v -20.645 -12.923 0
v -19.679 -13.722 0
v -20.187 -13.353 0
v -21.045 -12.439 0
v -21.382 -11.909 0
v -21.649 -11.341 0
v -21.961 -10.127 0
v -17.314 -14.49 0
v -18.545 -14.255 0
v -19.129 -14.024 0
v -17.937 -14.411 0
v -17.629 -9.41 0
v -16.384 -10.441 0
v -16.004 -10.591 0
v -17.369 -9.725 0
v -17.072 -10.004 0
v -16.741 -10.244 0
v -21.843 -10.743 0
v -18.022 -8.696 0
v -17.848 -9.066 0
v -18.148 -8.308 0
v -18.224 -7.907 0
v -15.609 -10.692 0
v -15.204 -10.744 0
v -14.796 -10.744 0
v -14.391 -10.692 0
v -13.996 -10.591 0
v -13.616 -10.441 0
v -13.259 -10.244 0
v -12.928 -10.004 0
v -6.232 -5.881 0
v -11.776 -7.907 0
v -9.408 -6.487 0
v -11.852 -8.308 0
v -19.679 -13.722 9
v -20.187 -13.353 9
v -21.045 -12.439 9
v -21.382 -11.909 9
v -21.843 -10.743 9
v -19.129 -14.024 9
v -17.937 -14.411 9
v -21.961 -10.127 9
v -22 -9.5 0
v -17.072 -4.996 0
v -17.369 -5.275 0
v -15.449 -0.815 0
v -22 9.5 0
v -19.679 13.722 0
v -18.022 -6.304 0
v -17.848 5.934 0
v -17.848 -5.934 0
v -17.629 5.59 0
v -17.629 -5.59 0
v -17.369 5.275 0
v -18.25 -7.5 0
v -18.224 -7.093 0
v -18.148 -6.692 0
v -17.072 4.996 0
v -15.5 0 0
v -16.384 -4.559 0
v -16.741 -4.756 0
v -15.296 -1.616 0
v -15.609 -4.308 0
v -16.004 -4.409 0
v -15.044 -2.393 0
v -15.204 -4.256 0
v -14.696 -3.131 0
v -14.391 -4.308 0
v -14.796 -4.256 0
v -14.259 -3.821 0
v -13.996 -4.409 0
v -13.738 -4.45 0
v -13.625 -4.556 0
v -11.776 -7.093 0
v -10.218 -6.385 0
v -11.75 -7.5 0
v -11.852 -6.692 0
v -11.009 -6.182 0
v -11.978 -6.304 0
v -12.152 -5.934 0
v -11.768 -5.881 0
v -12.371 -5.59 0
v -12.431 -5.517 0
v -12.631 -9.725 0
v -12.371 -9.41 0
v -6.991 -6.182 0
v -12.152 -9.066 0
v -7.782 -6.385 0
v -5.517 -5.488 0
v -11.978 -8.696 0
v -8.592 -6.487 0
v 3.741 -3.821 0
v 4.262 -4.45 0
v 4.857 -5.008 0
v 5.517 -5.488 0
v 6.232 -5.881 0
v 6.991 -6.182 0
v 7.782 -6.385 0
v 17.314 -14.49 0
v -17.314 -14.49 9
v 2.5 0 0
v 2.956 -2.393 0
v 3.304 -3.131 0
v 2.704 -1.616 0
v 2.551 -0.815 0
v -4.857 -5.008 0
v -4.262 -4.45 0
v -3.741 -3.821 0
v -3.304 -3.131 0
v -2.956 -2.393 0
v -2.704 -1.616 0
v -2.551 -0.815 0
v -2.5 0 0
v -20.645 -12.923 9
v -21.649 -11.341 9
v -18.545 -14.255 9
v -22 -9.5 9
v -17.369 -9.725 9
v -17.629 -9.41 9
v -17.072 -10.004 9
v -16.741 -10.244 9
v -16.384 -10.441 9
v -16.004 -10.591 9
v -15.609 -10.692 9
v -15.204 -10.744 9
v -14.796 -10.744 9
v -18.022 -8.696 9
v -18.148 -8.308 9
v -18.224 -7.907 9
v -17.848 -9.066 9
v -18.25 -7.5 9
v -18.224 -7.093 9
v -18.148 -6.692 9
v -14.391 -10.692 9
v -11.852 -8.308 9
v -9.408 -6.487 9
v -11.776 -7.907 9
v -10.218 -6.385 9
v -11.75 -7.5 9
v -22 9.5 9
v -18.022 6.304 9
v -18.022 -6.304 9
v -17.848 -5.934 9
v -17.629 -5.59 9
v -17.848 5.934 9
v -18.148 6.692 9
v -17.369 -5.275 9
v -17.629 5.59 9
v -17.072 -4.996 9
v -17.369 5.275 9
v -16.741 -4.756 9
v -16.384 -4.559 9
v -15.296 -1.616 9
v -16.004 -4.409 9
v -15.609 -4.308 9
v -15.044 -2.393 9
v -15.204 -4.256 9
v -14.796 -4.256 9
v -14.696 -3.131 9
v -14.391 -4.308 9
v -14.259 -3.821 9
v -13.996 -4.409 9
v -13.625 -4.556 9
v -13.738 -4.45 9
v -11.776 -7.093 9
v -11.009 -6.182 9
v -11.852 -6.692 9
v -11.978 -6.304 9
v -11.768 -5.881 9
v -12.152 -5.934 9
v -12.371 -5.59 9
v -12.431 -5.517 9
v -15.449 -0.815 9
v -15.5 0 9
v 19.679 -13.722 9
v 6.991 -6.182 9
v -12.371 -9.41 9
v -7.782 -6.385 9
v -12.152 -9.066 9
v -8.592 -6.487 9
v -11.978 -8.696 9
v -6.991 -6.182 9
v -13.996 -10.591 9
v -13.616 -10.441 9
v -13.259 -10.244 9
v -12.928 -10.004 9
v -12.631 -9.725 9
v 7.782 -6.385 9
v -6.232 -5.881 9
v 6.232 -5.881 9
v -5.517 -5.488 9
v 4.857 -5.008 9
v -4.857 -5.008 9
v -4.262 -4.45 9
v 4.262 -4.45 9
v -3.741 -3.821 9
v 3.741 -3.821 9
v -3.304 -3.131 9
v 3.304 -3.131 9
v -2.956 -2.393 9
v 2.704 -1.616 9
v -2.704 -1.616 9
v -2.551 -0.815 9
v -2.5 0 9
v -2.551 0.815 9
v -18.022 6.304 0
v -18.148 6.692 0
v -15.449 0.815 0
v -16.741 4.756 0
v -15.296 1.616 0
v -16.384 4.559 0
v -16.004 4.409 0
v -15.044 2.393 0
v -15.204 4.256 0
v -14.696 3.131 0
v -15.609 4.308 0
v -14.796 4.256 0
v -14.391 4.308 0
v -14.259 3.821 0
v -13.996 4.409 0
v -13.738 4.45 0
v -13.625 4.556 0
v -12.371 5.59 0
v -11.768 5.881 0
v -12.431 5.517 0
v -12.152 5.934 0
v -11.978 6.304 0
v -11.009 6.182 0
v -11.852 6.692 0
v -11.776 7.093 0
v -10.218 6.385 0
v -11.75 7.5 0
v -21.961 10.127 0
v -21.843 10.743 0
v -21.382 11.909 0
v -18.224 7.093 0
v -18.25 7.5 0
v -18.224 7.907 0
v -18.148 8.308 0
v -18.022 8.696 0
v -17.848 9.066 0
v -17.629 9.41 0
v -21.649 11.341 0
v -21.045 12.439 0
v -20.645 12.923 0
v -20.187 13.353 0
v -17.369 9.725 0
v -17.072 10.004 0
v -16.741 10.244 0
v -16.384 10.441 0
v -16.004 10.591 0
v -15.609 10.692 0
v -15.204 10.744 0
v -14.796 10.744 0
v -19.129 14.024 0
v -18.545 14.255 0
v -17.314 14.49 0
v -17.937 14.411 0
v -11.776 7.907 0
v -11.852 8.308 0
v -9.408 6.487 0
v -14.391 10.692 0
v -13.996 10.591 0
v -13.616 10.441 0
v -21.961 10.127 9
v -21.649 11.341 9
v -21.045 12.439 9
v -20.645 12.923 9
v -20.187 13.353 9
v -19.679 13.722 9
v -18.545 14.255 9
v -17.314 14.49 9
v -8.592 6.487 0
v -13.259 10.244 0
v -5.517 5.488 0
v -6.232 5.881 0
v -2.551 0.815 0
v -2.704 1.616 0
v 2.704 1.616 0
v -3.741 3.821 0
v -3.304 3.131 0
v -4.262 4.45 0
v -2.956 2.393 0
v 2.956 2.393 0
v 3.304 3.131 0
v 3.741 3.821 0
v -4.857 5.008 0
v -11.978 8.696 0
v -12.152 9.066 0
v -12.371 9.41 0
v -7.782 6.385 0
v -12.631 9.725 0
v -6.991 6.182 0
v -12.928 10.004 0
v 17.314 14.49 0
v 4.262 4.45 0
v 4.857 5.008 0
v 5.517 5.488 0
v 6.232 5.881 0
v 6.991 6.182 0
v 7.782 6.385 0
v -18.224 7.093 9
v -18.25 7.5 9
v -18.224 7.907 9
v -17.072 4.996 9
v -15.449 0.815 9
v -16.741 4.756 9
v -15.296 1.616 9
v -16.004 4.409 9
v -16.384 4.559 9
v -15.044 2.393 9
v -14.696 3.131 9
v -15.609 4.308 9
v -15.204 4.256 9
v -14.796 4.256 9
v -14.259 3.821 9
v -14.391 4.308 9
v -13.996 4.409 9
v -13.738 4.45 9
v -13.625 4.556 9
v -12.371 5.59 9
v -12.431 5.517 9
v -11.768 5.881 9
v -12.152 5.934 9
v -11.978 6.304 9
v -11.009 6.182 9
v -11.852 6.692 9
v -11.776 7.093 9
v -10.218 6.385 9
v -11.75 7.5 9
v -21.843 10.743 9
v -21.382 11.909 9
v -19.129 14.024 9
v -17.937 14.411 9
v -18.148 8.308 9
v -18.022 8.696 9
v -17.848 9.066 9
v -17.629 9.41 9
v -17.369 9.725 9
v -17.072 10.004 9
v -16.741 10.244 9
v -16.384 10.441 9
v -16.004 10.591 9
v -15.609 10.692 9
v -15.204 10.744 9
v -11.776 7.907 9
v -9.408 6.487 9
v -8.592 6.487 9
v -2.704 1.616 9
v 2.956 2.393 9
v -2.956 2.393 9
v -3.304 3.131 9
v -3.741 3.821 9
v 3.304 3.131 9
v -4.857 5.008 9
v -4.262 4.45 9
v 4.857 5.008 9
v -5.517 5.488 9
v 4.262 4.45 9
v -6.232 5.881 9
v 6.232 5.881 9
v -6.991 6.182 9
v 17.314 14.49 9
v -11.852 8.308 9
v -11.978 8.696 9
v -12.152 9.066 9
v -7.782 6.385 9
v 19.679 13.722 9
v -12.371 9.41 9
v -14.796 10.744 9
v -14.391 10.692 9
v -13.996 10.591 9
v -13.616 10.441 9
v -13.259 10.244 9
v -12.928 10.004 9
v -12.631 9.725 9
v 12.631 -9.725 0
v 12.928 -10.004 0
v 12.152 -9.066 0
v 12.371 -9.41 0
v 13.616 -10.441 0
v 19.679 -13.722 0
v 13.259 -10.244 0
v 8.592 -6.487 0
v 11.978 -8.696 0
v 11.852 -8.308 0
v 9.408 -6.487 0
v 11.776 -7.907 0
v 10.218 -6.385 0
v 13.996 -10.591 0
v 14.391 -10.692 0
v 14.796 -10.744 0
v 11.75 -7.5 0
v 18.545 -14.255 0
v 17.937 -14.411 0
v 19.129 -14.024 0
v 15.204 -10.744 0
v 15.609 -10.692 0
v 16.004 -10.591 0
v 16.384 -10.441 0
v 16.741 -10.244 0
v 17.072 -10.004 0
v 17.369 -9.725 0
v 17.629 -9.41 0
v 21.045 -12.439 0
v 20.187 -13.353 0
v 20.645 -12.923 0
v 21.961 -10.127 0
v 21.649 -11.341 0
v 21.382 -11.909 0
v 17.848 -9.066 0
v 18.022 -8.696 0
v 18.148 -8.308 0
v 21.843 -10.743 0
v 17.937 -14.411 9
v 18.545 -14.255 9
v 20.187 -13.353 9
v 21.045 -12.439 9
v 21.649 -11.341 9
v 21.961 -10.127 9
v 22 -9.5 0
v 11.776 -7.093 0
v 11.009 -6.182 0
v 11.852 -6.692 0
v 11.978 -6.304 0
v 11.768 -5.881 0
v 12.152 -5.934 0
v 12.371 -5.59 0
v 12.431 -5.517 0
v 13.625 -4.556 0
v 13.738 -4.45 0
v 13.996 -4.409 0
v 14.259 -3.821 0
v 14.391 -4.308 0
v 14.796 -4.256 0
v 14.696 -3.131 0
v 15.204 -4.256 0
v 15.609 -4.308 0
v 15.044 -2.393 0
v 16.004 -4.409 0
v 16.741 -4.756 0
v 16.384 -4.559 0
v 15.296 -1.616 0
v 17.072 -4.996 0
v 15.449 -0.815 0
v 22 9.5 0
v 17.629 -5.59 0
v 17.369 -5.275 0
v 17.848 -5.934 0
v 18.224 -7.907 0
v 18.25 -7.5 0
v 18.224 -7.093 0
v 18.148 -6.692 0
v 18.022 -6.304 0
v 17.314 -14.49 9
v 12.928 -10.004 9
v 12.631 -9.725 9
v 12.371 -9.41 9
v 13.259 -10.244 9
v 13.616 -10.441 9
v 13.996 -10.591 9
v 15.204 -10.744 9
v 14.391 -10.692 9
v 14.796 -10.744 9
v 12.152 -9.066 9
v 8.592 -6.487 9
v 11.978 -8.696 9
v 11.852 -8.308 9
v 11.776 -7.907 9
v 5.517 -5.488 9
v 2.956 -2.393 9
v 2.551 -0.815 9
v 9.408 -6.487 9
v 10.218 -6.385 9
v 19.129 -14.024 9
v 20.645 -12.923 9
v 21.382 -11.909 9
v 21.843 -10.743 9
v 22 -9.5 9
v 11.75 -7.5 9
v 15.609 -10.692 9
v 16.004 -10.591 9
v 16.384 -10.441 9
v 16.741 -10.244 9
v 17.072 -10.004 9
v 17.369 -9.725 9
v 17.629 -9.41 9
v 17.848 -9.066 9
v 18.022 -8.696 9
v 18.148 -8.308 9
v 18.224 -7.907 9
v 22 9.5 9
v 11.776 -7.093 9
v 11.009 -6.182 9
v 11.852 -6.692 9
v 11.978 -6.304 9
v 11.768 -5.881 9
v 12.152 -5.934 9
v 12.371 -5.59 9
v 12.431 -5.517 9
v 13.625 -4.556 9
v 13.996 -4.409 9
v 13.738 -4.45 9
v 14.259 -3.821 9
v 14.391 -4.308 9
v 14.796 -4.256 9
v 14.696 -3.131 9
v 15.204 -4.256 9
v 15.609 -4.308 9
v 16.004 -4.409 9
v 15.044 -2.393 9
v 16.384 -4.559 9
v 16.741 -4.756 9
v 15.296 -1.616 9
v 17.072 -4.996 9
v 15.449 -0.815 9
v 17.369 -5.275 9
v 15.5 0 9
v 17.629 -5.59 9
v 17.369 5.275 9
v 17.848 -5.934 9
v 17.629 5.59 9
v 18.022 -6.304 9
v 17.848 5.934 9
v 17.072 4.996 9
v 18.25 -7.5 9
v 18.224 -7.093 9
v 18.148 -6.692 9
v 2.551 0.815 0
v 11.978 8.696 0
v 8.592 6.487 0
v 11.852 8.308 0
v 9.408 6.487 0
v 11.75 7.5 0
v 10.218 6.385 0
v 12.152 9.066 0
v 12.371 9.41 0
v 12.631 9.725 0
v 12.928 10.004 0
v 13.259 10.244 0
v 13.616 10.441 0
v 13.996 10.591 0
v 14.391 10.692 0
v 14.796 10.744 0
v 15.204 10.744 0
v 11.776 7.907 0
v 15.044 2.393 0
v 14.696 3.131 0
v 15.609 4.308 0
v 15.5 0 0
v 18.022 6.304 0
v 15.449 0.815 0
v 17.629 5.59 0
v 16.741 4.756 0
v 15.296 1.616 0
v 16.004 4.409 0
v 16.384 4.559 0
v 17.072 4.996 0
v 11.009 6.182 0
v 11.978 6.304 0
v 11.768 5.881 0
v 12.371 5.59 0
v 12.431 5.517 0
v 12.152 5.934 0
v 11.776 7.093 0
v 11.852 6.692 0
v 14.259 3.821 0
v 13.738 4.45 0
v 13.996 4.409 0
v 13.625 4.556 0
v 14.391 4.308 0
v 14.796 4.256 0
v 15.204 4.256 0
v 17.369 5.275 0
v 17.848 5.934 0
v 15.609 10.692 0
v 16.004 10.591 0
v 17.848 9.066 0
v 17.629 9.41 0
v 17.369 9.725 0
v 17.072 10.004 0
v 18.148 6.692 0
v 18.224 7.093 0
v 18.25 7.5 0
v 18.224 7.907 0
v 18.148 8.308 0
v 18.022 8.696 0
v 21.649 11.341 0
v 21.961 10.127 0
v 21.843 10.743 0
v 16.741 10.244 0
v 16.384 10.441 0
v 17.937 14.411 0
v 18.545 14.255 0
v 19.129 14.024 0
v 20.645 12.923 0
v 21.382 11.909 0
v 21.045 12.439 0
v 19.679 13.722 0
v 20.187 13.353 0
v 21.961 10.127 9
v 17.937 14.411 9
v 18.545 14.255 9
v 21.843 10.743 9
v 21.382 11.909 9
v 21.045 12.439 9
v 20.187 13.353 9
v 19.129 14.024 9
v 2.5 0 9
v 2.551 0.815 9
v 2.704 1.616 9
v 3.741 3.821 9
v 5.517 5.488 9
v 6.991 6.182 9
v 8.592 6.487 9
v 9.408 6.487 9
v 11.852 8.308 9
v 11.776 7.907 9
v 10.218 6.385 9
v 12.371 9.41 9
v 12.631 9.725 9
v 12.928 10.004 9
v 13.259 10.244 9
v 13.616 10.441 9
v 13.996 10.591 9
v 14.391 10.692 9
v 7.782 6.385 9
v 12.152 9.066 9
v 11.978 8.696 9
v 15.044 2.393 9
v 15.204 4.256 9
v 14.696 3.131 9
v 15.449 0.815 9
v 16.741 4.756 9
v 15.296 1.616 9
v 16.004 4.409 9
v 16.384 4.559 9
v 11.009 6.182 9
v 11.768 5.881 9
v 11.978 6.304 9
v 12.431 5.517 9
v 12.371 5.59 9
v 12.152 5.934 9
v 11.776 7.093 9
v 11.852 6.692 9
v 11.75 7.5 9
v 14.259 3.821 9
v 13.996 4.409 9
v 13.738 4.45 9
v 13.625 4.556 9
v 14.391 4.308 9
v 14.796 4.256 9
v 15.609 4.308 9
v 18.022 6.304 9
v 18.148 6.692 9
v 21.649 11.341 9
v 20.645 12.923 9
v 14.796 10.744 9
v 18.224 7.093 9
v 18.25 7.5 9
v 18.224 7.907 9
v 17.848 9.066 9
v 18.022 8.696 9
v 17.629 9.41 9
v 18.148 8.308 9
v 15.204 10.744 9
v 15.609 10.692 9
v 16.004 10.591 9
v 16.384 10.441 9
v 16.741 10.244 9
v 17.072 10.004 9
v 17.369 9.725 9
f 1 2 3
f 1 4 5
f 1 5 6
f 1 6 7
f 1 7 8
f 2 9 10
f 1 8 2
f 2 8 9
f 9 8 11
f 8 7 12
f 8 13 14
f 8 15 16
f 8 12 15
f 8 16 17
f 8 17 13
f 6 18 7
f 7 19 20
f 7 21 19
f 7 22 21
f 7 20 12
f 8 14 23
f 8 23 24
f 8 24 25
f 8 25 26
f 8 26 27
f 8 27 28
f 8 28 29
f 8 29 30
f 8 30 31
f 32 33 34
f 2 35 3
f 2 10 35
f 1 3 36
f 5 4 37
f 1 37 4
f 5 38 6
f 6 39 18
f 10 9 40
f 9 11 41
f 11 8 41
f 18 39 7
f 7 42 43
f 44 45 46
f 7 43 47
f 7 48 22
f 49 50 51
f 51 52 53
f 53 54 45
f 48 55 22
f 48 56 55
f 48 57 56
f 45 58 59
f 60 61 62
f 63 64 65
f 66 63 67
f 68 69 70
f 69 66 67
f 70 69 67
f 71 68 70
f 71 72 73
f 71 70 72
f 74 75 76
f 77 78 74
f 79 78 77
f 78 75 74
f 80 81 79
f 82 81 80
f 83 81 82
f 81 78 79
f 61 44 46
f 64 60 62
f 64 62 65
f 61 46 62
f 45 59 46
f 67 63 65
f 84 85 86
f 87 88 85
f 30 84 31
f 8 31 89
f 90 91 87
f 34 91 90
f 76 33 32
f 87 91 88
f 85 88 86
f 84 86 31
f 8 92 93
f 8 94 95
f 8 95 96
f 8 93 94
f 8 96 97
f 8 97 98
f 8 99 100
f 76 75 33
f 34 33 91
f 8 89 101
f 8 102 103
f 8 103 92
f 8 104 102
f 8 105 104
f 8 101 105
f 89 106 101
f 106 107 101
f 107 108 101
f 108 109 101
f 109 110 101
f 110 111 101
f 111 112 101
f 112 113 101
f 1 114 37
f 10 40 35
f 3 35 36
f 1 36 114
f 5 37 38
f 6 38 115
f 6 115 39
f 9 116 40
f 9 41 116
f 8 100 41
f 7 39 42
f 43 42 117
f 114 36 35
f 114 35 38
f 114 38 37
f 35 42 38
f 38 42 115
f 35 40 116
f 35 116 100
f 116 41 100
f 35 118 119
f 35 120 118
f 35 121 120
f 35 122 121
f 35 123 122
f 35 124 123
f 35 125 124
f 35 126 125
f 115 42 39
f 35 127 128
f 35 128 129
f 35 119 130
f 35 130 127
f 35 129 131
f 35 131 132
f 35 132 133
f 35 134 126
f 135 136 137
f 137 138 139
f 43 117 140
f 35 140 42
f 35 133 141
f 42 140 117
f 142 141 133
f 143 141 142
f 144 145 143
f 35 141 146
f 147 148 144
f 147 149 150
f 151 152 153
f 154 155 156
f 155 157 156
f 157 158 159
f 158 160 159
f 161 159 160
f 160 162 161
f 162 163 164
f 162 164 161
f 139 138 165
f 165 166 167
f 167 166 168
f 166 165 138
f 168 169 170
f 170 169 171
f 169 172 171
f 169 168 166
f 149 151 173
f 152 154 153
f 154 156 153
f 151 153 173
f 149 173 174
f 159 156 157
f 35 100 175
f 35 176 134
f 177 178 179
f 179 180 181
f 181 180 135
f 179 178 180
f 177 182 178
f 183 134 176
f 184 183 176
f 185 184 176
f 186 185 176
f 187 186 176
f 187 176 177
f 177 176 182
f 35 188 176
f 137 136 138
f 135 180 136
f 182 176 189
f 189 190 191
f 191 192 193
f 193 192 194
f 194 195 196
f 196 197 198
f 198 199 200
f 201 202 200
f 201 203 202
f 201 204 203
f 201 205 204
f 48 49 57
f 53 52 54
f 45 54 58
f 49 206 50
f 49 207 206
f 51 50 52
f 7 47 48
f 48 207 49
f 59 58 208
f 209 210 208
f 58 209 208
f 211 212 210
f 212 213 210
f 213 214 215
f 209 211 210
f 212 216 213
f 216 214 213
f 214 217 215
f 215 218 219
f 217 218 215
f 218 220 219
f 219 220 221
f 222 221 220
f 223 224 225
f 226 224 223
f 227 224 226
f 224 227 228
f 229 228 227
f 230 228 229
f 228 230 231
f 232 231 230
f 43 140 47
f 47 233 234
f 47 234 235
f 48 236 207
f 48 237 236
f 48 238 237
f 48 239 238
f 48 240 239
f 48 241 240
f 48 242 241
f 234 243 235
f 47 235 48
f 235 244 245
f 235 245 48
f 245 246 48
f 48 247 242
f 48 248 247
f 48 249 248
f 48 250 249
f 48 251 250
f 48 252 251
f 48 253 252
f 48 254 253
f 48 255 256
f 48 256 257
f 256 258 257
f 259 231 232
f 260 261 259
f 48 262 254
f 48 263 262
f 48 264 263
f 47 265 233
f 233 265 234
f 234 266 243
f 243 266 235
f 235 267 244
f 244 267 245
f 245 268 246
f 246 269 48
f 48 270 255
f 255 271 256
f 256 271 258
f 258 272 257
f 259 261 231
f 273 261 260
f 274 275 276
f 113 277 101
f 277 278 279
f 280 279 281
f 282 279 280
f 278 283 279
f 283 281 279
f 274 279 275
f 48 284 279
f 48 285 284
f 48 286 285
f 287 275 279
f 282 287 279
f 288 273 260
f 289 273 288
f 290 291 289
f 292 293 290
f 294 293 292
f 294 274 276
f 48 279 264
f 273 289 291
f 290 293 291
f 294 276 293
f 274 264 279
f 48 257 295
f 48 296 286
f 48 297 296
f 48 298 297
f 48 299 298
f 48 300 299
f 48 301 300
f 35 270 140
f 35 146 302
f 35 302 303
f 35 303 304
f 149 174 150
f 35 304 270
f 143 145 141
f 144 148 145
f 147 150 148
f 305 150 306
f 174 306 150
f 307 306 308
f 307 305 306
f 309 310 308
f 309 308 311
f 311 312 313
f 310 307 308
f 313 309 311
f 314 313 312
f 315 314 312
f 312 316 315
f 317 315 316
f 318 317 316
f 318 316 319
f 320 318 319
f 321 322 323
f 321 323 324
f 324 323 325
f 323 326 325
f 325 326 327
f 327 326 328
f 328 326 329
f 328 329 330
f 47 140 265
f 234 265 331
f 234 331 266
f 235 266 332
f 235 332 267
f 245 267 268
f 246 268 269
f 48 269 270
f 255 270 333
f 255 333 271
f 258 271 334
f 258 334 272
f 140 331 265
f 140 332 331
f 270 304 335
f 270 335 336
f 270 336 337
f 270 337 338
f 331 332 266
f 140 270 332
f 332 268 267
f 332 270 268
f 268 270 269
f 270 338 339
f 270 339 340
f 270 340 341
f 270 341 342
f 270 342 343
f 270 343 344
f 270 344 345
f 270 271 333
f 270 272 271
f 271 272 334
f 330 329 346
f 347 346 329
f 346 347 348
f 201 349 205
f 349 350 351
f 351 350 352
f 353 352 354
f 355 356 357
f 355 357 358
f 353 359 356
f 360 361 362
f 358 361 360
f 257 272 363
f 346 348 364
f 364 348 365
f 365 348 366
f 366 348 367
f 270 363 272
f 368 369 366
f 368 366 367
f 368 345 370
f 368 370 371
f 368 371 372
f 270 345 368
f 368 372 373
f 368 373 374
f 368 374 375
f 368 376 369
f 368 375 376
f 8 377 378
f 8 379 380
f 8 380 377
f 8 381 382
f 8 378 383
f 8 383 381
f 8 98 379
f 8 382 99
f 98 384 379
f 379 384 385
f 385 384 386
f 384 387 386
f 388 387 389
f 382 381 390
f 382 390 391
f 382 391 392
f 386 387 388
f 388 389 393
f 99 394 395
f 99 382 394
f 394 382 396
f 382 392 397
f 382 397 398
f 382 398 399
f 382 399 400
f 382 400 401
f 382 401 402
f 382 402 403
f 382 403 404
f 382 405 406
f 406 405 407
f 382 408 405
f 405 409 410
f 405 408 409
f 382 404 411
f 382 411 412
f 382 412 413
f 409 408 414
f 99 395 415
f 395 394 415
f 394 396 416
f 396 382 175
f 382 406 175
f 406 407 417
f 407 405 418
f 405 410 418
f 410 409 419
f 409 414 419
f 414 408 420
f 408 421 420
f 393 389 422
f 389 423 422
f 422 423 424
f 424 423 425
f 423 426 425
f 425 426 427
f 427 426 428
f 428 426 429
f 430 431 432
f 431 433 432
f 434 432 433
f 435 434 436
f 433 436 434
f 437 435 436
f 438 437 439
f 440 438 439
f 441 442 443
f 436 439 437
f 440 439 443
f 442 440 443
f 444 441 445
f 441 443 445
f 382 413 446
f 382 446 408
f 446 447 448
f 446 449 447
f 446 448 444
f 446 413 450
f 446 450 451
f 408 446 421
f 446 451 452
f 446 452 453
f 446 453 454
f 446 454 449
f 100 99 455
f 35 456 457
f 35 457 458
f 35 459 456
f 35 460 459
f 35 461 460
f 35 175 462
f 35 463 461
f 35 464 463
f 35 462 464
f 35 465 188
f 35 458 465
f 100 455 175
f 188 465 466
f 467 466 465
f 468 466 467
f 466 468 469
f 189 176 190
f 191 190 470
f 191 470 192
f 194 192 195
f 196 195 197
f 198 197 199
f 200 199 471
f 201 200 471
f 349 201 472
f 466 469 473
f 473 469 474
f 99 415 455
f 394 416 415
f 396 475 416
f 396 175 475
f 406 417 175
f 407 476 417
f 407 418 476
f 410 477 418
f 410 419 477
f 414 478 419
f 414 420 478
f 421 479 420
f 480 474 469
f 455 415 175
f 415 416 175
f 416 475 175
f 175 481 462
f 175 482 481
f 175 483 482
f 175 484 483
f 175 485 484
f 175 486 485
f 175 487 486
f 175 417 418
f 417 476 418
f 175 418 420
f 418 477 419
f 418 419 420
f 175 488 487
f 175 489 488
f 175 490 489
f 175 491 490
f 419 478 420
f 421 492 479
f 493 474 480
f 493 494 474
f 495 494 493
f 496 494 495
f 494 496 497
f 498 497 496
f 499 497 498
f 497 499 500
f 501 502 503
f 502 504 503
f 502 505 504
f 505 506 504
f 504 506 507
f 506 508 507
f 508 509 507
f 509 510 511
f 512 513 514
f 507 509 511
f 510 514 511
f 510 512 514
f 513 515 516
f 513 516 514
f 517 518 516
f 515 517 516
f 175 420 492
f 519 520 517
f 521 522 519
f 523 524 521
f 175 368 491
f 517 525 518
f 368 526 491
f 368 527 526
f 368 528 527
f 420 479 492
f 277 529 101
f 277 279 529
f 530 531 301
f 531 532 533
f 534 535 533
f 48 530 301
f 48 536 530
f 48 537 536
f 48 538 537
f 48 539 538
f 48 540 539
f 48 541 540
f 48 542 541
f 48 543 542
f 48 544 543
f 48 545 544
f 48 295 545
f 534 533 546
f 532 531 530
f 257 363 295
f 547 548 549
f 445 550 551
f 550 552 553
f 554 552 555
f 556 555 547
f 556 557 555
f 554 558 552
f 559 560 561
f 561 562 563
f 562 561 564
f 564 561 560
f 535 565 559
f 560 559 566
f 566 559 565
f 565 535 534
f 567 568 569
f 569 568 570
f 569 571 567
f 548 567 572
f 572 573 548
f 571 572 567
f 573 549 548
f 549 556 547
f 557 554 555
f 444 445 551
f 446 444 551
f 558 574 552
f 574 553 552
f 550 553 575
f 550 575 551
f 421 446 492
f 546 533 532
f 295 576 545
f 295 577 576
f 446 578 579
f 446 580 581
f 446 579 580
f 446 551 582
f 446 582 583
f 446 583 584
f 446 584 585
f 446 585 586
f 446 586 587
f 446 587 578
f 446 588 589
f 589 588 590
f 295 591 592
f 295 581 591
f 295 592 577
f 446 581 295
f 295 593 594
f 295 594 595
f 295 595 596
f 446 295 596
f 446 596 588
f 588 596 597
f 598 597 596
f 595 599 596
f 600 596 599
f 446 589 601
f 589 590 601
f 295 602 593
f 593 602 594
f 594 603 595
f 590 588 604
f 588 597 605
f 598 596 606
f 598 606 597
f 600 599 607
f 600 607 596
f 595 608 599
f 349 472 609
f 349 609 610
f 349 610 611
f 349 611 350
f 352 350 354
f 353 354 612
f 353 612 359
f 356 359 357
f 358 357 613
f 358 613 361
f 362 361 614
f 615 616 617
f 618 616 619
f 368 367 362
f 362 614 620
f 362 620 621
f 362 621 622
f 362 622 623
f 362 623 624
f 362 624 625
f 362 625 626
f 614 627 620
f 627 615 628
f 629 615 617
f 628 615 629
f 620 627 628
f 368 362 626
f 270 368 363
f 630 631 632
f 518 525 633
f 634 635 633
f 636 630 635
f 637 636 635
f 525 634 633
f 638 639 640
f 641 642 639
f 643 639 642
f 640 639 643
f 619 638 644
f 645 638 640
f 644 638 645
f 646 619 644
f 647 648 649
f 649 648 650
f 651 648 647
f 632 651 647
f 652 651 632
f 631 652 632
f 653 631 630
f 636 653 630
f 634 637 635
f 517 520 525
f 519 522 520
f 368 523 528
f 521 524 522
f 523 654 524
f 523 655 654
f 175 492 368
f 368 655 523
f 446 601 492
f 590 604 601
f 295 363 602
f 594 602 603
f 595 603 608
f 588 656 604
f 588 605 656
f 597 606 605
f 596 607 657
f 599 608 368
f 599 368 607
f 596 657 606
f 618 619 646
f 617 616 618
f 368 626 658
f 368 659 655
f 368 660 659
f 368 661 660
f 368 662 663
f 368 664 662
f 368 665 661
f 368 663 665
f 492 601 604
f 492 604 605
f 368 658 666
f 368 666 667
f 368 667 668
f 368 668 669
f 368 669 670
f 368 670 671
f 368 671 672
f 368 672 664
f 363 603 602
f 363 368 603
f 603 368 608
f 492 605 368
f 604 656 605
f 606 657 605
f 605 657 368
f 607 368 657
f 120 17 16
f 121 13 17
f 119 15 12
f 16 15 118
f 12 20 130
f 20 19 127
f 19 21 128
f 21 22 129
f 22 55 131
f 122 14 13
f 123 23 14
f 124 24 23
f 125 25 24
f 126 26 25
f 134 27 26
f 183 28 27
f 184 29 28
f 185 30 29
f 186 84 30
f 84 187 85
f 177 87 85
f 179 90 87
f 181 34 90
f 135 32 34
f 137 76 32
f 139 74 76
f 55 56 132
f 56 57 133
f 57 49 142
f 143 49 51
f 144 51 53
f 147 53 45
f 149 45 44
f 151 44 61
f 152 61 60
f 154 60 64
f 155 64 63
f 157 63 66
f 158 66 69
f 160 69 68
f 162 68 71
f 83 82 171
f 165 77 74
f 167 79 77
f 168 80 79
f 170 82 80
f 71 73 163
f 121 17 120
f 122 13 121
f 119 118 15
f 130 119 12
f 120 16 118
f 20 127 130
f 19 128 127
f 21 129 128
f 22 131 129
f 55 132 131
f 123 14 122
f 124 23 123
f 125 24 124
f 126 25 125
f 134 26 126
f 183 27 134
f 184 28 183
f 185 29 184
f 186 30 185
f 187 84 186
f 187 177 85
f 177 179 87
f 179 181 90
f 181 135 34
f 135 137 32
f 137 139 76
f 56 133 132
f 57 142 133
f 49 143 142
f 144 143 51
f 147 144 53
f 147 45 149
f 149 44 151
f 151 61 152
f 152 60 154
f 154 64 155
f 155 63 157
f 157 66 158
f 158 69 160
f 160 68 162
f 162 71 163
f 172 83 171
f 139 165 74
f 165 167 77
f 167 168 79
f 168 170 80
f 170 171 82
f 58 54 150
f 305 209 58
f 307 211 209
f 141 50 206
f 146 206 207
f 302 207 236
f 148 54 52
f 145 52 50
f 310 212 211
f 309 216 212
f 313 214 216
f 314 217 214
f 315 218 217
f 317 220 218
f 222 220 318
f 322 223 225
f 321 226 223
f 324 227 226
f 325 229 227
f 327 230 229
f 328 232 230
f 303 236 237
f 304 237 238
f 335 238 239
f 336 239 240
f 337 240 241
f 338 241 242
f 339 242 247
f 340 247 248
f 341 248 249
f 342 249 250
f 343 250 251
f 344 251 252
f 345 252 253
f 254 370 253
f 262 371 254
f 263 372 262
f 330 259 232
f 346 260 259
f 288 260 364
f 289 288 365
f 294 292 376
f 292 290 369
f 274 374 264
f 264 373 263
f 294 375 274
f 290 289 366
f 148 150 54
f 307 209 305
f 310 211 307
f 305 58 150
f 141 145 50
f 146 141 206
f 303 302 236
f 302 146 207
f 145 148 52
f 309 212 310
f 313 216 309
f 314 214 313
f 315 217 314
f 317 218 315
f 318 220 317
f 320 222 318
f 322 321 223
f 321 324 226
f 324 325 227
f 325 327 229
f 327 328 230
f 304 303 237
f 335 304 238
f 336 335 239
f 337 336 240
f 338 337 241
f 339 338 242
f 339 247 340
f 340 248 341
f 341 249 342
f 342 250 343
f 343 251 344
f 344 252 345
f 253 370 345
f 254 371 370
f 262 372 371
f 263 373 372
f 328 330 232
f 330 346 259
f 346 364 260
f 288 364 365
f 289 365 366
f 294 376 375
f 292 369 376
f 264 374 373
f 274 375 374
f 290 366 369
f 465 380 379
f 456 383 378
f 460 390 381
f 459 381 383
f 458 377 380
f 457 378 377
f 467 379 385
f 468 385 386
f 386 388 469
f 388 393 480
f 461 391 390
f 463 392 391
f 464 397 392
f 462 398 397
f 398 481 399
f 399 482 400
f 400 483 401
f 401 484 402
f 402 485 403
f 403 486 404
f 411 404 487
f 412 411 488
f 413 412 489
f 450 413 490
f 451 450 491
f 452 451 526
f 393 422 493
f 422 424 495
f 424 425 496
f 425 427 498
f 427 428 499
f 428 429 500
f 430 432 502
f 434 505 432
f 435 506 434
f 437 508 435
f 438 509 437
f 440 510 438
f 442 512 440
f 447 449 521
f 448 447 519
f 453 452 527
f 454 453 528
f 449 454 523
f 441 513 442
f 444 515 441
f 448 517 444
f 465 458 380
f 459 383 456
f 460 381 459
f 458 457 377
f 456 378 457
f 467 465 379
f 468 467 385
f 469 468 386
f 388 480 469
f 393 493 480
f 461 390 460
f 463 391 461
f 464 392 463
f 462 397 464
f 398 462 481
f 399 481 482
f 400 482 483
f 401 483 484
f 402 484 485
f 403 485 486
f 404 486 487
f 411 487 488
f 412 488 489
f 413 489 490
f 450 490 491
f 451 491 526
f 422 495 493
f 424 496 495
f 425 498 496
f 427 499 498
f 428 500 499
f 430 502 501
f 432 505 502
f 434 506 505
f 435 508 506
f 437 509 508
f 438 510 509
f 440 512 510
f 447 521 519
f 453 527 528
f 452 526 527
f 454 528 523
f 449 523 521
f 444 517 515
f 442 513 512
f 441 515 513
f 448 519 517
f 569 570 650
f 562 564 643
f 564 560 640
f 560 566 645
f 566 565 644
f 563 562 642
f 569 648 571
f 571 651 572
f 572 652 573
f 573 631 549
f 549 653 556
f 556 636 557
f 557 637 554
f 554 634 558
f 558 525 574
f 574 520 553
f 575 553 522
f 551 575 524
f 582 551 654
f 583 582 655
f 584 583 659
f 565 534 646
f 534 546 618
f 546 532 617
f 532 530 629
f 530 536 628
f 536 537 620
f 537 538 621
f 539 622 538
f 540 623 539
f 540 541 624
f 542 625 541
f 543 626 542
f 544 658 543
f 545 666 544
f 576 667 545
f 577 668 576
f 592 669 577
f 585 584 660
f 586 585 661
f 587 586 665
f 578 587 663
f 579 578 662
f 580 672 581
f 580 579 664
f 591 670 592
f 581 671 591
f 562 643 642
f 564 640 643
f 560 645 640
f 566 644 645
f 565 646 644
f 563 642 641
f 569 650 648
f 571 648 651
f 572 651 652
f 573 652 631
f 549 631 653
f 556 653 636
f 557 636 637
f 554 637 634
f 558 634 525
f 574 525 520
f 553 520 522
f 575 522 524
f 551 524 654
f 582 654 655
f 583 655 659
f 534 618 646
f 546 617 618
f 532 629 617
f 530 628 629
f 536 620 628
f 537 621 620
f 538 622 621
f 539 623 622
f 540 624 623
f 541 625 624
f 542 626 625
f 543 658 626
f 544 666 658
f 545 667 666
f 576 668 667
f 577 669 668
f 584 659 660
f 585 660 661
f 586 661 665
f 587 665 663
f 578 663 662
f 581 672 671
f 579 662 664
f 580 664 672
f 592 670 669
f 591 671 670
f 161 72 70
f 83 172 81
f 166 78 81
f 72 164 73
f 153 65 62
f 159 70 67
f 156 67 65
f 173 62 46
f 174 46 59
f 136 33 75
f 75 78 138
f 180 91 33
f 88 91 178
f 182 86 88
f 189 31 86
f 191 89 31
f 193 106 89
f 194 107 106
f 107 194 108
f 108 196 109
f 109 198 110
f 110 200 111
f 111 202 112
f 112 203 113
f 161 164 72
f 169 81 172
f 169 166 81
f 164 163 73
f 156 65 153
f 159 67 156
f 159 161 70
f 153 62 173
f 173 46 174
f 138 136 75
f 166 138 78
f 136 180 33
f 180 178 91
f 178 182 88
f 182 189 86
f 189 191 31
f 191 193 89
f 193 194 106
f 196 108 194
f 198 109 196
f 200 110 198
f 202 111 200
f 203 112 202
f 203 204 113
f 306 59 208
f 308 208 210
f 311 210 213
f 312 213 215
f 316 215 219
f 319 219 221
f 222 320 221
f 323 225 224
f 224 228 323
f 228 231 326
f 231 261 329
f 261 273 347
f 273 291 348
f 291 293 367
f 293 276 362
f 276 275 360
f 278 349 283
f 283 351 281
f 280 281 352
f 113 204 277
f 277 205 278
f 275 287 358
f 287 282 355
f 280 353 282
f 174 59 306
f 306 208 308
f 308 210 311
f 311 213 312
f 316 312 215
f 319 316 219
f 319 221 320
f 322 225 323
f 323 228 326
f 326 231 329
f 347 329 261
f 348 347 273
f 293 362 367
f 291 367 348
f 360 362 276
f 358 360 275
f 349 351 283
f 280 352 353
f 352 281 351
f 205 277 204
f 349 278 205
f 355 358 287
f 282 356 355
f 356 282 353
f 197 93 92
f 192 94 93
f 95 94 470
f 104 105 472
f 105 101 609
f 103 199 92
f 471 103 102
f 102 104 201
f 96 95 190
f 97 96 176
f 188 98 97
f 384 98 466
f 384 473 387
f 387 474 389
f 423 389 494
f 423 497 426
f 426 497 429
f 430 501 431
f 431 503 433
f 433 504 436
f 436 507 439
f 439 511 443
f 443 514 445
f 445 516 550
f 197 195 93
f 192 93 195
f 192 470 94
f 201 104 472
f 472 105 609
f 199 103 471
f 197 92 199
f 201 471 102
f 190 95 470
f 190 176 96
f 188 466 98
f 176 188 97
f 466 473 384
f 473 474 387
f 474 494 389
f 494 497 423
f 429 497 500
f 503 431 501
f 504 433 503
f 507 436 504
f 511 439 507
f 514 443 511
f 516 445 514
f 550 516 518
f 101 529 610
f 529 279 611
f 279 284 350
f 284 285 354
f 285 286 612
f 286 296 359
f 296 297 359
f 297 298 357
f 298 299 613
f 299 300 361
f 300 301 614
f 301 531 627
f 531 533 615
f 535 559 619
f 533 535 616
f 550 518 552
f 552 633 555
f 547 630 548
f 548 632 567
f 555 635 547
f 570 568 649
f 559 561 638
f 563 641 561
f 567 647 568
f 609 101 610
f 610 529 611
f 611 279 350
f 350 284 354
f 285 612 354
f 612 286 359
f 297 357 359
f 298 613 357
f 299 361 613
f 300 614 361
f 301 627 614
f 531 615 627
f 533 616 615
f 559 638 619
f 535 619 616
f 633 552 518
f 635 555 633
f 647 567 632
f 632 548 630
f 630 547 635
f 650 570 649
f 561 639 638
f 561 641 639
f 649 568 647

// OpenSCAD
$fn = 50;

difference() {
	union() {
		hull() {
			translate(v = [-17.0, 9.5, 0]) {
				cylinder(h = 9, r = 5);
			}
			translate(v = [17.0, 9.5, 0]) {
				cylinder(h = 9, r = 5);
			}
			translate(v = [-17.0, -9.5, 0]) {
				cylinder(h = 9, r = 5);
			}
			translate(v = [17.0, -9.5, 0]) {
				cylinder(h = 9, r = 5);
			}
		}
	}
	union() {
		translate(v = [-15.0, -7.5, -100.0]) {
			cylinder(h = 200, r = 3.25);
		}
		translate(v = [-15.0, 7.5, -100.0]) {
			cylinder(h = 200, r = 3.25);
		}
		translate(v = [15.0, -7.5, -100.0]) {
			cylinder(h = 200, r = 3.25);
		}
		translate(v = [15.0, 7.5, -100.0]) {
			cylinder(h = 200, r = 3.25);
		}
		translate(v = [-15.0, -7.5, -100.0]) {
			cylinder(h = 200, r = 1.8);
		}
		translate(v = [-15.0, 7.5, -100.0]) {
			cylinder(h = 200, r = 1.8);
		}
		translate(v = [15.0, -7.5, -100.0]) {
			cylinder(h = 200, r = 1.8);
		}
		translate(v = [15.0, 7.5, -100.0]) {
			cylinder(h = 200, r = 1.8);
		}
		translate(v = [-9.0, 0, 0.0]) {
			cylinder(h = 9, r = 6.5);
		}
		translate(v = [9.0, 0, 0.0]) {
			cylinder(h = 9, r = 6.5);
		}
	}
}
